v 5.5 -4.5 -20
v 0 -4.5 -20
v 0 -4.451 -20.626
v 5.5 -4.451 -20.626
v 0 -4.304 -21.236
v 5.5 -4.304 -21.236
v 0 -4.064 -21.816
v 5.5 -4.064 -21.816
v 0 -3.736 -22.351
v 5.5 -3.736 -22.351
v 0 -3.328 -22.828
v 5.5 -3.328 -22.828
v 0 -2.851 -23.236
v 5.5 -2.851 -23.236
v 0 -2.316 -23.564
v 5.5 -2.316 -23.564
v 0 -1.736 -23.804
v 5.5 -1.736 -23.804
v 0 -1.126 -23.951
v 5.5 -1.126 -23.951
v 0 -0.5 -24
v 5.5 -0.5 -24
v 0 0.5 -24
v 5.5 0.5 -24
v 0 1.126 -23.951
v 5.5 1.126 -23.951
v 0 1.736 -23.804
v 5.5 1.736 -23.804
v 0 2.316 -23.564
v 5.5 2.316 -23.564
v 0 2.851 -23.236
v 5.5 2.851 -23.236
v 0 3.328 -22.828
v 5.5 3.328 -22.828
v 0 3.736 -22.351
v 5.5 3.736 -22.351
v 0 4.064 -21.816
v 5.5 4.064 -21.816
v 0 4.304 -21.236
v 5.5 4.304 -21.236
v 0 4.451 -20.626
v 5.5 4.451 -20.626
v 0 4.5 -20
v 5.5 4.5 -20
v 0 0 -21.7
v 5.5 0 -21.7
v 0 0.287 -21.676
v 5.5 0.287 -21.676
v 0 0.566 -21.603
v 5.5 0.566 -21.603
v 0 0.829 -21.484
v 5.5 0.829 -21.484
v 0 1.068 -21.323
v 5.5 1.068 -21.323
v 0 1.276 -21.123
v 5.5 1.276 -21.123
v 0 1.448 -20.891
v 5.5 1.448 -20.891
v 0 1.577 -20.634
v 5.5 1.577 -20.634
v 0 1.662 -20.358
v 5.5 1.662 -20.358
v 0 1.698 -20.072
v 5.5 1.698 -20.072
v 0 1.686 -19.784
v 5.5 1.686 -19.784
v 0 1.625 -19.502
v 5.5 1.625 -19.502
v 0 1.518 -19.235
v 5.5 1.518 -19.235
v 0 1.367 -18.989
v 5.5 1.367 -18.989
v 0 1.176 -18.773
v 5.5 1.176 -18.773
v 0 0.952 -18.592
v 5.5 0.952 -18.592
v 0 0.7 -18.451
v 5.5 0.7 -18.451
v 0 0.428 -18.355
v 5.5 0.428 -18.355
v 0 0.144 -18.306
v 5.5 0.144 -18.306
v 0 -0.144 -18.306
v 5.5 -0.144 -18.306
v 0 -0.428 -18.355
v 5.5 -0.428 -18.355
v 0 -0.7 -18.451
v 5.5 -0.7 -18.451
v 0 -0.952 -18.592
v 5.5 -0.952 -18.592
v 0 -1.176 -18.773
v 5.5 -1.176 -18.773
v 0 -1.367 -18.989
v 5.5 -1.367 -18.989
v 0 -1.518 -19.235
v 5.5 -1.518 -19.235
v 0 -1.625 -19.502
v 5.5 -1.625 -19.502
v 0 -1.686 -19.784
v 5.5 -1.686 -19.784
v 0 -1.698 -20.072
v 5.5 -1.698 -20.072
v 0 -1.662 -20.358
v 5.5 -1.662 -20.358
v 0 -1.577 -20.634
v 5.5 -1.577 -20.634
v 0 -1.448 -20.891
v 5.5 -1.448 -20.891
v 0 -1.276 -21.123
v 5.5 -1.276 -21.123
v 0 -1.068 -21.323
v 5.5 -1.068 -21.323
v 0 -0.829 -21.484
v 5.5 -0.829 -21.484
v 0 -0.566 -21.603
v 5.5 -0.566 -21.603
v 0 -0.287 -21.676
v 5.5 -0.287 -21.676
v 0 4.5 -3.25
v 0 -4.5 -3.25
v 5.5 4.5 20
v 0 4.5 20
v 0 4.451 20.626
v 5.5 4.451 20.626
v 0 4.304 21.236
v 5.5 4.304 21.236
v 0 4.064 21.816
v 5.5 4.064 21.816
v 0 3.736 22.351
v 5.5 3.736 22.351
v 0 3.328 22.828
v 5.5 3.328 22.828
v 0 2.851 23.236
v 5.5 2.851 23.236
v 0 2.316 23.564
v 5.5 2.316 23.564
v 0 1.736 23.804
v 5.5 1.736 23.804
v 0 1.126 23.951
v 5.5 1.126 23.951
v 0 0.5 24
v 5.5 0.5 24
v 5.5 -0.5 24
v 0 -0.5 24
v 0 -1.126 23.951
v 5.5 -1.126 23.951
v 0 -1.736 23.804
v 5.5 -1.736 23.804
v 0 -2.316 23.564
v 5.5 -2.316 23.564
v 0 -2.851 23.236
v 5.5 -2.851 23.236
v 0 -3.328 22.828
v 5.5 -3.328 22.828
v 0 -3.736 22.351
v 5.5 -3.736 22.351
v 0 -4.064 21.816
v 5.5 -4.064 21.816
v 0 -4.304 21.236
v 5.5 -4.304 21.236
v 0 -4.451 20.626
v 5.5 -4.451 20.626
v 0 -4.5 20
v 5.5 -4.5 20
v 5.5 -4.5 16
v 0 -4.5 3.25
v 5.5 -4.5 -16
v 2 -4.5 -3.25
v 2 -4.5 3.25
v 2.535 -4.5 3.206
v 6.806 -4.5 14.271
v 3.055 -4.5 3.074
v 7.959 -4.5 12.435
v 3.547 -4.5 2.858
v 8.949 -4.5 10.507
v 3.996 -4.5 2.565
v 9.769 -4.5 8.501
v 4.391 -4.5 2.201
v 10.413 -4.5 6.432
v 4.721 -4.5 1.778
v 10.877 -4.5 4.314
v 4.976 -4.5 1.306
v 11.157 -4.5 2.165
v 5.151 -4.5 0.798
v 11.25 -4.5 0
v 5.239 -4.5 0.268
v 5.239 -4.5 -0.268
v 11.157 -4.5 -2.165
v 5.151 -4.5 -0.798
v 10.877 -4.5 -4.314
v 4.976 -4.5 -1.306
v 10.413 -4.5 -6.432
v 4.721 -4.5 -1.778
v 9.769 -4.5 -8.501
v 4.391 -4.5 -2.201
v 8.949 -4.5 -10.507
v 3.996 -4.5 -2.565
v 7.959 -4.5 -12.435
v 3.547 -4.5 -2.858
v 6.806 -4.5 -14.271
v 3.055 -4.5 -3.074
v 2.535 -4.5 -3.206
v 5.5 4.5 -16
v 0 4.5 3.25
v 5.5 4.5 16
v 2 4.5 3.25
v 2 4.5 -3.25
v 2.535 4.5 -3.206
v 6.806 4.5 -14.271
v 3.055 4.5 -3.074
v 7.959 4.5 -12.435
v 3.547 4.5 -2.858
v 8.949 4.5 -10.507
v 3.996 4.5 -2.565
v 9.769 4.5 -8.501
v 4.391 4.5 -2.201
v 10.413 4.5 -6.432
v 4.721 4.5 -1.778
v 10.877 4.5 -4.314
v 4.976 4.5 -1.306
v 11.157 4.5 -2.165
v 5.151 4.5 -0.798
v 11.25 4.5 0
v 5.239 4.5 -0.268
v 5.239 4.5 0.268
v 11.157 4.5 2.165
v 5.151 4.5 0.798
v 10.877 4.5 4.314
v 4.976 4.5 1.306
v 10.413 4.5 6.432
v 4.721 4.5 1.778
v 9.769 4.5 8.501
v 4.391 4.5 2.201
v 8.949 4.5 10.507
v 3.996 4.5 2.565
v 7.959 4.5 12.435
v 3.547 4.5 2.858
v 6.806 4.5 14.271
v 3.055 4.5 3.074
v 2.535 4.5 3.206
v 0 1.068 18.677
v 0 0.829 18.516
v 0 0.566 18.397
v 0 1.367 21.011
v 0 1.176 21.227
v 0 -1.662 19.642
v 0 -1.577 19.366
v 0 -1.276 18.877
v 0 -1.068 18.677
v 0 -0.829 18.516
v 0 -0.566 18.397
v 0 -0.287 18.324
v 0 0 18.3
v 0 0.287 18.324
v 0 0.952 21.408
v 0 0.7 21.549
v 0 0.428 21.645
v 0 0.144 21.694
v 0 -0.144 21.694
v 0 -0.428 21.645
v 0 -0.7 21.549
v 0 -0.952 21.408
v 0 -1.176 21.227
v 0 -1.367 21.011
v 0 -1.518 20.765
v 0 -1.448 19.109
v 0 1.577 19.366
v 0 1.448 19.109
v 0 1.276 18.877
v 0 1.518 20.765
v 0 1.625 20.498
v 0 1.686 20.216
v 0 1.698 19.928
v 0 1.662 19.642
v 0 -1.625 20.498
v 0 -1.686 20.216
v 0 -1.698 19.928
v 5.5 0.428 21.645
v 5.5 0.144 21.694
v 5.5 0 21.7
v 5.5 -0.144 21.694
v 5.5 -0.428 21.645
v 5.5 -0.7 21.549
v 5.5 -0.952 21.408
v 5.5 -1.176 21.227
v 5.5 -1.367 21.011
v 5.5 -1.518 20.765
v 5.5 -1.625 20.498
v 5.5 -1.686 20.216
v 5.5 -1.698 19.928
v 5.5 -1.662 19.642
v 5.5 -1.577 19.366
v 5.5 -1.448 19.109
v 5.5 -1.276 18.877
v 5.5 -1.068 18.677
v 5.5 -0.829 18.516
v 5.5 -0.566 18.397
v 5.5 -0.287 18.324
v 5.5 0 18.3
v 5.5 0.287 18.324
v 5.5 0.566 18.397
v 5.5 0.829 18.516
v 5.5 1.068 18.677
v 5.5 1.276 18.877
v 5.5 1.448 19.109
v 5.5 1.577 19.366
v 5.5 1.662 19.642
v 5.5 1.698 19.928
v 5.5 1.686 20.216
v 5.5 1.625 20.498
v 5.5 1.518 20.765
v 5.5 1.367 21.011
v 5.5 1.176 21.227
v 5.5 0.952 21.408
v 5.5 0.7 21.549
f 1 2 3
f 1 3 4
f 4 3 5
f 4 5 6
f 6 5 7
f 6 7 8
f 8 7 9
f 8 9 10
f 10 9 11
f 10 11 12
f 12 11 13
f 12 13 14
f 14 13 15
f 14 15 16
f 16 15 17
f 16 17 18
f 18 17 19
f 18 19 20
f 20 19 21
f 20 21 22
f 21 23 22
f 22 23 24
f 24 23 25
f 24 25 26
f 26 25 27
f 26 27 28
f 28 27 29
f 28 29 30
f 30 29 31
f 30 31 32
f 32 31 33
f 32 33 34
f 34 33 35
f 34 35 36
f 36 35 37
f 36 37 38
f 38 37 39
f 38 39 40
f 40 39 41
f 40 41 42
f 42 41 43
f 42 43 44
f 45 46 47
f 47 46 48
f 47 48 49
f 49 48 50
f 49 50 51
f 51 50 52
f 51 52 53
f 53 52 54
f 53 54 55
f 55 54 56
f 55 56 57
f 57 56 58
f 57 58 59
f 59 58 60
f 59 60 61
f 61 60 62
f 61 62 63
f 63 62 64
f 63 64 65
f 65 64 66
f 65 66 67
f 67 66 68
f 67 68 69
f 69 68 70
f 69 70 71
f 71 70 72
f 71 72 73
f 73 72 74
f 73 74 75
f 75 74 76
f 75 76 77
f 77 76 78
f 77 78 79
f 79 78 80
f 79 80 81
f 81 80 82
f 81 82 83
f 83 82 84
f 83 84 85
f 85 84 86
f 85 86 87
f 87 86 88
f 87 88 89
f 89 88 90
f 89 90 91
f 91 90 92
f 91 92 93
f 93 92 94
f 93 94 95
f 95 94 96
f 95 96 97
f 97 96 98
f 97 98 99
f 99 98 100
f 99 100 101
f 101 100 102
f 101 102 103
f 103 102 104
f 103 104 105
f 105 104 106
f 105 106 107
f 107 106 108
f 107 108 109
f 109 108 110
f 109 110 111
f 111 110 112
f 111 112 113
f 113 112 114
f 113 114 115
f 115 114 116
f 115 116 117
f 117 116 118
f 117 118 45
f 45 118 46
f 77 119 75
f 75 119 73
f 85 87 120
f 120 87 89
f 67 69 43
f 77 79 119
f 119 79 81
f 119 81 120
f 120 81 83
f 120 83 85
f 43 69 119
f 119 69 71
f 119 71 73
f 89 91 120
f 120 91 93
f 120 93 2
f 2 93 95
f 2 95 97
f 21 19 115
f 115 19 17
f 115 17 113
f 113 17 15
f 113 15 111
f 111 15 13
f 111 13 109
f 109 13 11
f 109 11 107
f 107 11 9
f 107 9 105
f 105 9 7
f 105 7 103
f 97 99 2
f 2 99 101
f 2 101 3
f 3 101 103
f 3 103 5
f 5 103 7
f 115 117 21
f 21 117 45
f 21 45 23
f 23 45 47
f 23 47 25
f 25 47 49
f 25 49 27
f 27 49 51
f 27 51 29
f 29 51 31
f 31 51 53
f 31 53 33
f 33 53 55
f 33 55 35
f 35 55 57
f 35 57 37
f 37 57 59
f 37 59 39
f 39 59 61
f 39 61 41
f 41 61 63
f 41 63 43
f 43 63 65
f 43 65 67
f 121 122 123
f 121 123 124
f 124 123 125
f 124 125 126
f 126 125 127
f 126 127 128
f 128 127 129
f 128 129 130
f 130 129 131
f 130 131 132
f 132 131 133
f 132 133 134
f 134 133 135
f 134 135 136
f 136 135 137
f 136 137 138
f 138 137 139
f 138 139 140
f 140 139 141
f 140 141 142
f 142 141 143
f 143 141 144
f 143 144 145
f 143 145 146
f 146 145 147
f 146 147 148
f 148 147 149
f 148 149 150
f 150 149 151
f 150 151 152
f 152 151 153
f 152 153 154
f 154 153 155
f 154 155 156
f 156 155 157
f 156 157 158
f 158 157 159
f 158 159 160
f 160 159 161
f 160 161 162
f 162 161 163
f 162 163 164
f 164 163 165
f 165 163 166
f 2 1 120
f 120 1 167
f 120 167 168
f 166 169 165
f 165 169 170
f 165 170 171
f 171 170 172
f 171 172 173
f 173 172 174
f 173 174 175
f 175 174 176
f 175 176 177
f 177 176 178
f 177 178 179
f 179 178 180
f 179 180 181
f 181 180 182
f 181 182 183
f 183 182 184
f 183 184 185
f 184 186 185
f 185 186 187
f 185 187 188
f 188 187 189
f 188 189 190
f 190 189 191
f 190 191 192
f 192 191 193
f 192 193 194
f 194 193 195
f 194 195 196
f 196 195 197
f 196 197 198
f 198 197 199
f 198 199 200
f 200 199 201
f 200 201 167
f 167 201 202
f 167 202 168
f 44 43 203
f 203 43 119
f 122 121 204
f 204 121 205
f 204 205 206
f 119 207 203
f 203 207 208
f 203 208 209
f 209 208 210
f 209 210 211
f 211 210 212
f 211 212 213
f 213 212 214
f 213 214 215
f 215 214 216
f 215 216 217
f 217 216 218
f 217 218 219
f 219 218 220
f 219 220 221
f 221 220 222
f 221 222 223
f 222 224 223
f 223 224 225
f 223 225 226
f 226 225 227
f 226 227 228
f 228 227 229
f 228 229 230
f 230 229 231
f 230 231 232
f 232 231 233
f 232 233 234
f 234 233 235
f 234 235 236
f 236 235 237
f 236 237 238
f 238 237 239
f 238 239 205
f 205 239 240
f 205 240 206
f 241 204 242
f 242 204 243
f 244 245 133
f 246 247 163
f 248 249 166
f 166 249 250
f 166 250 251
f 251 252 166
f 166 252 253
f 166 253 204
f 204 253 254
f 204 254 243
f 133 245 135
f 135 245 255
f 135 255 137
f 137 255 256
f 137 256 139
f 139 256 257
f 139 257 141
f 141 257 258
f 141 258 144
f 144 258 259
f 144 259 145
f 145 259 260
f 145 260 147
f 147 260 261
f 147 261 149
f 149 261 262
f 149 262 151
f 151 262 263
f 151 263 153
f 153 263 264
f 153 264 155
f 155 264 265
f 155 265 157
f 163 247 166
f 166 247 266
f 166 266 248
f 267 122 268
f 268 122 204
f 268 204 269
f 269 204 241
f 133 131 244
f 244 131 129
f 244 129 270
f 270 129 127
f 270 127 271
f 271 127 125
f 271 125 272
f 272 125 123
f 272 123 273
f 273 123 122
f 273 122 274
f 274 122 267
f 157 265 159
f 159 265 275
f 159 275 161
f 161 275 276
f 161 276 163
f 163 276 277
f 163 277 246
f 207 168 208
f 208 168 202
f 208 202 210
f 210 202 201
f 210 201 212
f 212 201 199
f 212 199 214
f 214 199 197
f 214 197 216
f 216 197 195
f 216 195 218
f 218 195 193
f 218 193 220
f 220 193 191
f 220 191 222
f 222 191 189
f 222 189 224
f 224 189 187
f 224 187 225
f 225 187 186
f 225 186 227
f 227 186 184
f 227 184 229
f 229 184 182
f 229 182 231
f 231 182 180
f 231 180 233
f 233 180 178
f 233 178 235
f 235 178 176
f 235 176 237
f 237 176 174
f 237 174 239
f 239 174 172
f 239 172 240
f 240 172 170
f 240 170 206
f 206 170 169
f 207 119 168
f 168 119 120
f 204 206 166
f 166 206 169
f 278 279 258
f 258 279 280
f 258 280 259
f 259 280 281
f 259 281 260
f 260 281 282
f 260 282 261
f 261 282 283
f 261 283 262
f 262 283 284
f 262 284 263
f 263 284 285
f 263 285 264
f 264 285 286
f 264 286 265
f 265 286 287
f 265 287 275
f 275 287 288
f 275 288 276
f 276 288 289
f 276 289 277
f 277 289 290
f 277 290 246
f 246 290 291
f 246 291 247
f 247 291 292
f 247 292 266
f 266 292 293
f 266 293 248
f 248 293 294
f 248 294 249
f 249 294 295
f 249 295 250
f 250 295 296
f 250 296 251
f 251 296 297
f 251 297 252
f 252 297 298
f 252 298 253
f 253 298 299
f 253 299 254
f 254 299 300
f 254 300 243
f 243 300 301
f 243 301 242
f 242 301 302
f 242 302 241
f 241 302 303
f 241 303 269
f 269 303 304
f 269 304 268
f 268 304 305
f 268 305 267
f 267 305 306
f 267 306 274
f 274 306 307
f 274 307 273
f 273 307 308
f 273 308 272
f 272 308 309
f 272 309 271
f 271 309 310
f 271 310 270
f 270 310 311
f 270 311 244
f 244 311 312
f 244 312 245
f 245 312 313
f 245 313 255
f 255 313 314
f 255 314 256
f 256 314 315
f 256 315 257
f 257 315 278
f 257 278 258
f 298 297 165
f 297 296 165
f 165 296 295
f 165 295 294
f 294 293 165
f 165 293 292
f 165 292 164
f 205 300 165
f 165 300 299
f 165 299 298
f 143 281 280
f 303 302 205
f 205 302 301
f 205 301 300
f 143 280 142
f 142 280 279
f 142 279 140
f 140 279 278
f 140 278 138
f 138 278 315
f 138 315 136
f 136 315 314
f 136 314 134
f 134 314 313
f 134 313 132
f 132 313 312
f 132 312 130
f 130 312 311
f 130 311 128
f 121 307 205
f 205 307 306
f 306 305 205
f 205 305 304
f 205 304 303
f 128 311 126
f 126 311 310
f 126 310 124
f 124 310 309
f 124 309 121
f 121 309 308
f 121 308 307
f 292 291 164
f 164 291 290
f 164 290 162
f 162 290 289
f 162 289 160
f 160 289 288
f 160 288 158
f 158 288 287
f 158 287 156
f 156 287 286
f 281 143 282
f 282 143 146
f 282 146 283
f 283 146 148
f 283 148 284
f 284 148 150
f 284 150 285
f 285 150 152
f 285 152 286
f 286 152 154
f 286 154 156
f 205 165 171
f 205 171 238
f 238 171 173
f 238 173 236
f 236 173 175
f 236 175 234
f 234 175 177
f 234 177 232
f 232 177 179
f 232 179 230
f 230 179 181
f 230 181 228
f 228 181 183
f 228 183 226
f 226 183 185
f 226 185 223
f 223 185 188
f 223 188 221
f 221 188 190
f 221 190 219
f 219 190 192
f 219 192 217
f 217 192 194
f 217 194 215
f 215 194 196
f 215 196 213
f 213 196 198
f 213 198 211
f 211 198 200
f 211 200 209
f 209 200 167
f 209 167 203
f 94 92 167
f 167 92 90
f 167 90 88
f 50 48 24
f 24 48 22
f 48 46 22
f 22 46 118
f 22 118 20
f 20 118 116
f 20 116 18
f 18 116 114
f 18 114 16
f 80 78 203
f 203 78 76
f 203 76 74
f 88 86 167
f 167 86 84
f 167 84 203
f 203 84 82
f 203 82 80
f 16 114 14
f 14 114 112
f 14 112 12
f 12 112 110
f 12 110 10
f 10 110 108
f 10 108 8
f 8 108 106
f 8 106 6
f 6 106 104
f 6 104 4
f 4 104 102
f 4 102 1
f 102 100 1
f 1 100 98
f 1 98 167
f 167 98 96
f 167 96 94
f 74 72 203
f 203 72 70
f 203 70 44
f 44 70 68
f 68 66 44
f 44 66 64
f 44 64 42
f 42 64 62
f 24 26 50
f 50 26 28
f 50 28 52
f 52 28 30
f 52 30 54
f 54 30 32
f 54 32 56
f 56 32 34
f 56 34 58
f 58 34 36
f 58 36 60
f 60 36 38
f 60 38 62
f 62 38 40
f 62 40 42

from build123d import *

# Parameters (mm, degrees)
BOSS_EXTRUDE1_DEPTH  = 11.25
CUT_EXTRUDE1_DEPTH   = 10
M3_CLEARANCE_HOLE1_D = 3.4
SKETCH7_W            = 5.75
SKETCH7_H            = 4
CUT_EXTRUDE2_DEPTH   = 10


with BuildPart() as part:
    # Sketch1 → Boss-Extrude1 (new body)
    with BuildSketch(Plane(origin=(0, 0, 0), x_dir=(0, 0, -1), z_dir=(1, 0, 0))):
        with BuildLine():
            Line((-24, 0.5), (-24, -0.5))
            ThreePointArc((-24, -0.5), (-22.828427125, -3.328427125), (-20, -4.5))
            Line((-20, -4.5), (20, -4.5))
            ThreePointArc((20, -4.5), (22.828427125, -3.328427125), (24, -0.5))
            Line((24, -0.5), (24, 0.5))
            ThreePointArc((24, 0.5), (22.828427125, 3.328427125), (20, 4.5))
            Line((20, 4.5), (-20, 4.5))
            ThreePointArc((-20, 4.5), (-22.828427125, 3.328427125), (-24, 0.5))
        make_face()
    extrude(amount=BOSS_EXTRUDE1_DEPTH)

    # Sketch2 → Cut-Extrude1 (cut, through all)
    with BuildSketch(Plane(origin=(0, -4.5, 0), x_dir=(-1, 0, 0), z_dir=(0, -1, 0))):
        with BuildLine():
            Line((-2, -3.25), (0, -3.25))
            Line((0, -3.25), (0, 3.25))
            Line((0, 3.25), (-2, 3.25))
            ThreePointArc((-2, 3.25), (-5.25, 0), (-2, -3.25))
        make_face()
    extrude(amount=-CUT_EXTRUDE1_DEPTH, mode=Mode.SUBTRACT)

    # M3 Clearance Hole1 (through all)
    with Locations(Plane(origin=(11.25, 0, 0), x_dir=(0, 0, -1), z_dir=(1, 0, 0))):
        with Locations((-20, 0), (20, 0)):
            Hole(M3_CLEARANCE_HOLE1_D / 2)

    # Sketch7 → Cut-Extrude2 (cut, through all)
    with BuildSketch(Plane(origin=(0, -4.5, 0), x_dir=(-1, 0, 0), z_dir=(0, -1, 0))):
        with Locations((-8.375, -22)):
            Rectangle(SKETCH7_W, SKETCH7_H)
        with BuildLine():
            Line((-11.25, -20), (-5.5, -20))
            Line((-5.5, -20), (-5.5, -16))
            ThreePointArc((-5.5, -16), (-9.768861754, -8.500919068), (-11.25, 0))
            Line((-11.25, 0), (-11.25, -20))
        make_face()
        with BuildLine():
            Line((-11.25, 20), (-11.25, 0))
            ThreePointArc((-11.25, 0), (-9.768861754, 8.500919068), (-5.5, 16))
            Line((-5.5, 16), (-5.5, 20))
            Line((-5.5, 20), (-11.25, 20))
        make_face()
        with Locations((-8.375, 22)):
            Rectangle(SKETCH7_W, SKETCH7_H)
    extrude(amount=-CUT_EXTRUDE2_DEPTH, mode=Mode.SUBTRACT)


solid = part.part
